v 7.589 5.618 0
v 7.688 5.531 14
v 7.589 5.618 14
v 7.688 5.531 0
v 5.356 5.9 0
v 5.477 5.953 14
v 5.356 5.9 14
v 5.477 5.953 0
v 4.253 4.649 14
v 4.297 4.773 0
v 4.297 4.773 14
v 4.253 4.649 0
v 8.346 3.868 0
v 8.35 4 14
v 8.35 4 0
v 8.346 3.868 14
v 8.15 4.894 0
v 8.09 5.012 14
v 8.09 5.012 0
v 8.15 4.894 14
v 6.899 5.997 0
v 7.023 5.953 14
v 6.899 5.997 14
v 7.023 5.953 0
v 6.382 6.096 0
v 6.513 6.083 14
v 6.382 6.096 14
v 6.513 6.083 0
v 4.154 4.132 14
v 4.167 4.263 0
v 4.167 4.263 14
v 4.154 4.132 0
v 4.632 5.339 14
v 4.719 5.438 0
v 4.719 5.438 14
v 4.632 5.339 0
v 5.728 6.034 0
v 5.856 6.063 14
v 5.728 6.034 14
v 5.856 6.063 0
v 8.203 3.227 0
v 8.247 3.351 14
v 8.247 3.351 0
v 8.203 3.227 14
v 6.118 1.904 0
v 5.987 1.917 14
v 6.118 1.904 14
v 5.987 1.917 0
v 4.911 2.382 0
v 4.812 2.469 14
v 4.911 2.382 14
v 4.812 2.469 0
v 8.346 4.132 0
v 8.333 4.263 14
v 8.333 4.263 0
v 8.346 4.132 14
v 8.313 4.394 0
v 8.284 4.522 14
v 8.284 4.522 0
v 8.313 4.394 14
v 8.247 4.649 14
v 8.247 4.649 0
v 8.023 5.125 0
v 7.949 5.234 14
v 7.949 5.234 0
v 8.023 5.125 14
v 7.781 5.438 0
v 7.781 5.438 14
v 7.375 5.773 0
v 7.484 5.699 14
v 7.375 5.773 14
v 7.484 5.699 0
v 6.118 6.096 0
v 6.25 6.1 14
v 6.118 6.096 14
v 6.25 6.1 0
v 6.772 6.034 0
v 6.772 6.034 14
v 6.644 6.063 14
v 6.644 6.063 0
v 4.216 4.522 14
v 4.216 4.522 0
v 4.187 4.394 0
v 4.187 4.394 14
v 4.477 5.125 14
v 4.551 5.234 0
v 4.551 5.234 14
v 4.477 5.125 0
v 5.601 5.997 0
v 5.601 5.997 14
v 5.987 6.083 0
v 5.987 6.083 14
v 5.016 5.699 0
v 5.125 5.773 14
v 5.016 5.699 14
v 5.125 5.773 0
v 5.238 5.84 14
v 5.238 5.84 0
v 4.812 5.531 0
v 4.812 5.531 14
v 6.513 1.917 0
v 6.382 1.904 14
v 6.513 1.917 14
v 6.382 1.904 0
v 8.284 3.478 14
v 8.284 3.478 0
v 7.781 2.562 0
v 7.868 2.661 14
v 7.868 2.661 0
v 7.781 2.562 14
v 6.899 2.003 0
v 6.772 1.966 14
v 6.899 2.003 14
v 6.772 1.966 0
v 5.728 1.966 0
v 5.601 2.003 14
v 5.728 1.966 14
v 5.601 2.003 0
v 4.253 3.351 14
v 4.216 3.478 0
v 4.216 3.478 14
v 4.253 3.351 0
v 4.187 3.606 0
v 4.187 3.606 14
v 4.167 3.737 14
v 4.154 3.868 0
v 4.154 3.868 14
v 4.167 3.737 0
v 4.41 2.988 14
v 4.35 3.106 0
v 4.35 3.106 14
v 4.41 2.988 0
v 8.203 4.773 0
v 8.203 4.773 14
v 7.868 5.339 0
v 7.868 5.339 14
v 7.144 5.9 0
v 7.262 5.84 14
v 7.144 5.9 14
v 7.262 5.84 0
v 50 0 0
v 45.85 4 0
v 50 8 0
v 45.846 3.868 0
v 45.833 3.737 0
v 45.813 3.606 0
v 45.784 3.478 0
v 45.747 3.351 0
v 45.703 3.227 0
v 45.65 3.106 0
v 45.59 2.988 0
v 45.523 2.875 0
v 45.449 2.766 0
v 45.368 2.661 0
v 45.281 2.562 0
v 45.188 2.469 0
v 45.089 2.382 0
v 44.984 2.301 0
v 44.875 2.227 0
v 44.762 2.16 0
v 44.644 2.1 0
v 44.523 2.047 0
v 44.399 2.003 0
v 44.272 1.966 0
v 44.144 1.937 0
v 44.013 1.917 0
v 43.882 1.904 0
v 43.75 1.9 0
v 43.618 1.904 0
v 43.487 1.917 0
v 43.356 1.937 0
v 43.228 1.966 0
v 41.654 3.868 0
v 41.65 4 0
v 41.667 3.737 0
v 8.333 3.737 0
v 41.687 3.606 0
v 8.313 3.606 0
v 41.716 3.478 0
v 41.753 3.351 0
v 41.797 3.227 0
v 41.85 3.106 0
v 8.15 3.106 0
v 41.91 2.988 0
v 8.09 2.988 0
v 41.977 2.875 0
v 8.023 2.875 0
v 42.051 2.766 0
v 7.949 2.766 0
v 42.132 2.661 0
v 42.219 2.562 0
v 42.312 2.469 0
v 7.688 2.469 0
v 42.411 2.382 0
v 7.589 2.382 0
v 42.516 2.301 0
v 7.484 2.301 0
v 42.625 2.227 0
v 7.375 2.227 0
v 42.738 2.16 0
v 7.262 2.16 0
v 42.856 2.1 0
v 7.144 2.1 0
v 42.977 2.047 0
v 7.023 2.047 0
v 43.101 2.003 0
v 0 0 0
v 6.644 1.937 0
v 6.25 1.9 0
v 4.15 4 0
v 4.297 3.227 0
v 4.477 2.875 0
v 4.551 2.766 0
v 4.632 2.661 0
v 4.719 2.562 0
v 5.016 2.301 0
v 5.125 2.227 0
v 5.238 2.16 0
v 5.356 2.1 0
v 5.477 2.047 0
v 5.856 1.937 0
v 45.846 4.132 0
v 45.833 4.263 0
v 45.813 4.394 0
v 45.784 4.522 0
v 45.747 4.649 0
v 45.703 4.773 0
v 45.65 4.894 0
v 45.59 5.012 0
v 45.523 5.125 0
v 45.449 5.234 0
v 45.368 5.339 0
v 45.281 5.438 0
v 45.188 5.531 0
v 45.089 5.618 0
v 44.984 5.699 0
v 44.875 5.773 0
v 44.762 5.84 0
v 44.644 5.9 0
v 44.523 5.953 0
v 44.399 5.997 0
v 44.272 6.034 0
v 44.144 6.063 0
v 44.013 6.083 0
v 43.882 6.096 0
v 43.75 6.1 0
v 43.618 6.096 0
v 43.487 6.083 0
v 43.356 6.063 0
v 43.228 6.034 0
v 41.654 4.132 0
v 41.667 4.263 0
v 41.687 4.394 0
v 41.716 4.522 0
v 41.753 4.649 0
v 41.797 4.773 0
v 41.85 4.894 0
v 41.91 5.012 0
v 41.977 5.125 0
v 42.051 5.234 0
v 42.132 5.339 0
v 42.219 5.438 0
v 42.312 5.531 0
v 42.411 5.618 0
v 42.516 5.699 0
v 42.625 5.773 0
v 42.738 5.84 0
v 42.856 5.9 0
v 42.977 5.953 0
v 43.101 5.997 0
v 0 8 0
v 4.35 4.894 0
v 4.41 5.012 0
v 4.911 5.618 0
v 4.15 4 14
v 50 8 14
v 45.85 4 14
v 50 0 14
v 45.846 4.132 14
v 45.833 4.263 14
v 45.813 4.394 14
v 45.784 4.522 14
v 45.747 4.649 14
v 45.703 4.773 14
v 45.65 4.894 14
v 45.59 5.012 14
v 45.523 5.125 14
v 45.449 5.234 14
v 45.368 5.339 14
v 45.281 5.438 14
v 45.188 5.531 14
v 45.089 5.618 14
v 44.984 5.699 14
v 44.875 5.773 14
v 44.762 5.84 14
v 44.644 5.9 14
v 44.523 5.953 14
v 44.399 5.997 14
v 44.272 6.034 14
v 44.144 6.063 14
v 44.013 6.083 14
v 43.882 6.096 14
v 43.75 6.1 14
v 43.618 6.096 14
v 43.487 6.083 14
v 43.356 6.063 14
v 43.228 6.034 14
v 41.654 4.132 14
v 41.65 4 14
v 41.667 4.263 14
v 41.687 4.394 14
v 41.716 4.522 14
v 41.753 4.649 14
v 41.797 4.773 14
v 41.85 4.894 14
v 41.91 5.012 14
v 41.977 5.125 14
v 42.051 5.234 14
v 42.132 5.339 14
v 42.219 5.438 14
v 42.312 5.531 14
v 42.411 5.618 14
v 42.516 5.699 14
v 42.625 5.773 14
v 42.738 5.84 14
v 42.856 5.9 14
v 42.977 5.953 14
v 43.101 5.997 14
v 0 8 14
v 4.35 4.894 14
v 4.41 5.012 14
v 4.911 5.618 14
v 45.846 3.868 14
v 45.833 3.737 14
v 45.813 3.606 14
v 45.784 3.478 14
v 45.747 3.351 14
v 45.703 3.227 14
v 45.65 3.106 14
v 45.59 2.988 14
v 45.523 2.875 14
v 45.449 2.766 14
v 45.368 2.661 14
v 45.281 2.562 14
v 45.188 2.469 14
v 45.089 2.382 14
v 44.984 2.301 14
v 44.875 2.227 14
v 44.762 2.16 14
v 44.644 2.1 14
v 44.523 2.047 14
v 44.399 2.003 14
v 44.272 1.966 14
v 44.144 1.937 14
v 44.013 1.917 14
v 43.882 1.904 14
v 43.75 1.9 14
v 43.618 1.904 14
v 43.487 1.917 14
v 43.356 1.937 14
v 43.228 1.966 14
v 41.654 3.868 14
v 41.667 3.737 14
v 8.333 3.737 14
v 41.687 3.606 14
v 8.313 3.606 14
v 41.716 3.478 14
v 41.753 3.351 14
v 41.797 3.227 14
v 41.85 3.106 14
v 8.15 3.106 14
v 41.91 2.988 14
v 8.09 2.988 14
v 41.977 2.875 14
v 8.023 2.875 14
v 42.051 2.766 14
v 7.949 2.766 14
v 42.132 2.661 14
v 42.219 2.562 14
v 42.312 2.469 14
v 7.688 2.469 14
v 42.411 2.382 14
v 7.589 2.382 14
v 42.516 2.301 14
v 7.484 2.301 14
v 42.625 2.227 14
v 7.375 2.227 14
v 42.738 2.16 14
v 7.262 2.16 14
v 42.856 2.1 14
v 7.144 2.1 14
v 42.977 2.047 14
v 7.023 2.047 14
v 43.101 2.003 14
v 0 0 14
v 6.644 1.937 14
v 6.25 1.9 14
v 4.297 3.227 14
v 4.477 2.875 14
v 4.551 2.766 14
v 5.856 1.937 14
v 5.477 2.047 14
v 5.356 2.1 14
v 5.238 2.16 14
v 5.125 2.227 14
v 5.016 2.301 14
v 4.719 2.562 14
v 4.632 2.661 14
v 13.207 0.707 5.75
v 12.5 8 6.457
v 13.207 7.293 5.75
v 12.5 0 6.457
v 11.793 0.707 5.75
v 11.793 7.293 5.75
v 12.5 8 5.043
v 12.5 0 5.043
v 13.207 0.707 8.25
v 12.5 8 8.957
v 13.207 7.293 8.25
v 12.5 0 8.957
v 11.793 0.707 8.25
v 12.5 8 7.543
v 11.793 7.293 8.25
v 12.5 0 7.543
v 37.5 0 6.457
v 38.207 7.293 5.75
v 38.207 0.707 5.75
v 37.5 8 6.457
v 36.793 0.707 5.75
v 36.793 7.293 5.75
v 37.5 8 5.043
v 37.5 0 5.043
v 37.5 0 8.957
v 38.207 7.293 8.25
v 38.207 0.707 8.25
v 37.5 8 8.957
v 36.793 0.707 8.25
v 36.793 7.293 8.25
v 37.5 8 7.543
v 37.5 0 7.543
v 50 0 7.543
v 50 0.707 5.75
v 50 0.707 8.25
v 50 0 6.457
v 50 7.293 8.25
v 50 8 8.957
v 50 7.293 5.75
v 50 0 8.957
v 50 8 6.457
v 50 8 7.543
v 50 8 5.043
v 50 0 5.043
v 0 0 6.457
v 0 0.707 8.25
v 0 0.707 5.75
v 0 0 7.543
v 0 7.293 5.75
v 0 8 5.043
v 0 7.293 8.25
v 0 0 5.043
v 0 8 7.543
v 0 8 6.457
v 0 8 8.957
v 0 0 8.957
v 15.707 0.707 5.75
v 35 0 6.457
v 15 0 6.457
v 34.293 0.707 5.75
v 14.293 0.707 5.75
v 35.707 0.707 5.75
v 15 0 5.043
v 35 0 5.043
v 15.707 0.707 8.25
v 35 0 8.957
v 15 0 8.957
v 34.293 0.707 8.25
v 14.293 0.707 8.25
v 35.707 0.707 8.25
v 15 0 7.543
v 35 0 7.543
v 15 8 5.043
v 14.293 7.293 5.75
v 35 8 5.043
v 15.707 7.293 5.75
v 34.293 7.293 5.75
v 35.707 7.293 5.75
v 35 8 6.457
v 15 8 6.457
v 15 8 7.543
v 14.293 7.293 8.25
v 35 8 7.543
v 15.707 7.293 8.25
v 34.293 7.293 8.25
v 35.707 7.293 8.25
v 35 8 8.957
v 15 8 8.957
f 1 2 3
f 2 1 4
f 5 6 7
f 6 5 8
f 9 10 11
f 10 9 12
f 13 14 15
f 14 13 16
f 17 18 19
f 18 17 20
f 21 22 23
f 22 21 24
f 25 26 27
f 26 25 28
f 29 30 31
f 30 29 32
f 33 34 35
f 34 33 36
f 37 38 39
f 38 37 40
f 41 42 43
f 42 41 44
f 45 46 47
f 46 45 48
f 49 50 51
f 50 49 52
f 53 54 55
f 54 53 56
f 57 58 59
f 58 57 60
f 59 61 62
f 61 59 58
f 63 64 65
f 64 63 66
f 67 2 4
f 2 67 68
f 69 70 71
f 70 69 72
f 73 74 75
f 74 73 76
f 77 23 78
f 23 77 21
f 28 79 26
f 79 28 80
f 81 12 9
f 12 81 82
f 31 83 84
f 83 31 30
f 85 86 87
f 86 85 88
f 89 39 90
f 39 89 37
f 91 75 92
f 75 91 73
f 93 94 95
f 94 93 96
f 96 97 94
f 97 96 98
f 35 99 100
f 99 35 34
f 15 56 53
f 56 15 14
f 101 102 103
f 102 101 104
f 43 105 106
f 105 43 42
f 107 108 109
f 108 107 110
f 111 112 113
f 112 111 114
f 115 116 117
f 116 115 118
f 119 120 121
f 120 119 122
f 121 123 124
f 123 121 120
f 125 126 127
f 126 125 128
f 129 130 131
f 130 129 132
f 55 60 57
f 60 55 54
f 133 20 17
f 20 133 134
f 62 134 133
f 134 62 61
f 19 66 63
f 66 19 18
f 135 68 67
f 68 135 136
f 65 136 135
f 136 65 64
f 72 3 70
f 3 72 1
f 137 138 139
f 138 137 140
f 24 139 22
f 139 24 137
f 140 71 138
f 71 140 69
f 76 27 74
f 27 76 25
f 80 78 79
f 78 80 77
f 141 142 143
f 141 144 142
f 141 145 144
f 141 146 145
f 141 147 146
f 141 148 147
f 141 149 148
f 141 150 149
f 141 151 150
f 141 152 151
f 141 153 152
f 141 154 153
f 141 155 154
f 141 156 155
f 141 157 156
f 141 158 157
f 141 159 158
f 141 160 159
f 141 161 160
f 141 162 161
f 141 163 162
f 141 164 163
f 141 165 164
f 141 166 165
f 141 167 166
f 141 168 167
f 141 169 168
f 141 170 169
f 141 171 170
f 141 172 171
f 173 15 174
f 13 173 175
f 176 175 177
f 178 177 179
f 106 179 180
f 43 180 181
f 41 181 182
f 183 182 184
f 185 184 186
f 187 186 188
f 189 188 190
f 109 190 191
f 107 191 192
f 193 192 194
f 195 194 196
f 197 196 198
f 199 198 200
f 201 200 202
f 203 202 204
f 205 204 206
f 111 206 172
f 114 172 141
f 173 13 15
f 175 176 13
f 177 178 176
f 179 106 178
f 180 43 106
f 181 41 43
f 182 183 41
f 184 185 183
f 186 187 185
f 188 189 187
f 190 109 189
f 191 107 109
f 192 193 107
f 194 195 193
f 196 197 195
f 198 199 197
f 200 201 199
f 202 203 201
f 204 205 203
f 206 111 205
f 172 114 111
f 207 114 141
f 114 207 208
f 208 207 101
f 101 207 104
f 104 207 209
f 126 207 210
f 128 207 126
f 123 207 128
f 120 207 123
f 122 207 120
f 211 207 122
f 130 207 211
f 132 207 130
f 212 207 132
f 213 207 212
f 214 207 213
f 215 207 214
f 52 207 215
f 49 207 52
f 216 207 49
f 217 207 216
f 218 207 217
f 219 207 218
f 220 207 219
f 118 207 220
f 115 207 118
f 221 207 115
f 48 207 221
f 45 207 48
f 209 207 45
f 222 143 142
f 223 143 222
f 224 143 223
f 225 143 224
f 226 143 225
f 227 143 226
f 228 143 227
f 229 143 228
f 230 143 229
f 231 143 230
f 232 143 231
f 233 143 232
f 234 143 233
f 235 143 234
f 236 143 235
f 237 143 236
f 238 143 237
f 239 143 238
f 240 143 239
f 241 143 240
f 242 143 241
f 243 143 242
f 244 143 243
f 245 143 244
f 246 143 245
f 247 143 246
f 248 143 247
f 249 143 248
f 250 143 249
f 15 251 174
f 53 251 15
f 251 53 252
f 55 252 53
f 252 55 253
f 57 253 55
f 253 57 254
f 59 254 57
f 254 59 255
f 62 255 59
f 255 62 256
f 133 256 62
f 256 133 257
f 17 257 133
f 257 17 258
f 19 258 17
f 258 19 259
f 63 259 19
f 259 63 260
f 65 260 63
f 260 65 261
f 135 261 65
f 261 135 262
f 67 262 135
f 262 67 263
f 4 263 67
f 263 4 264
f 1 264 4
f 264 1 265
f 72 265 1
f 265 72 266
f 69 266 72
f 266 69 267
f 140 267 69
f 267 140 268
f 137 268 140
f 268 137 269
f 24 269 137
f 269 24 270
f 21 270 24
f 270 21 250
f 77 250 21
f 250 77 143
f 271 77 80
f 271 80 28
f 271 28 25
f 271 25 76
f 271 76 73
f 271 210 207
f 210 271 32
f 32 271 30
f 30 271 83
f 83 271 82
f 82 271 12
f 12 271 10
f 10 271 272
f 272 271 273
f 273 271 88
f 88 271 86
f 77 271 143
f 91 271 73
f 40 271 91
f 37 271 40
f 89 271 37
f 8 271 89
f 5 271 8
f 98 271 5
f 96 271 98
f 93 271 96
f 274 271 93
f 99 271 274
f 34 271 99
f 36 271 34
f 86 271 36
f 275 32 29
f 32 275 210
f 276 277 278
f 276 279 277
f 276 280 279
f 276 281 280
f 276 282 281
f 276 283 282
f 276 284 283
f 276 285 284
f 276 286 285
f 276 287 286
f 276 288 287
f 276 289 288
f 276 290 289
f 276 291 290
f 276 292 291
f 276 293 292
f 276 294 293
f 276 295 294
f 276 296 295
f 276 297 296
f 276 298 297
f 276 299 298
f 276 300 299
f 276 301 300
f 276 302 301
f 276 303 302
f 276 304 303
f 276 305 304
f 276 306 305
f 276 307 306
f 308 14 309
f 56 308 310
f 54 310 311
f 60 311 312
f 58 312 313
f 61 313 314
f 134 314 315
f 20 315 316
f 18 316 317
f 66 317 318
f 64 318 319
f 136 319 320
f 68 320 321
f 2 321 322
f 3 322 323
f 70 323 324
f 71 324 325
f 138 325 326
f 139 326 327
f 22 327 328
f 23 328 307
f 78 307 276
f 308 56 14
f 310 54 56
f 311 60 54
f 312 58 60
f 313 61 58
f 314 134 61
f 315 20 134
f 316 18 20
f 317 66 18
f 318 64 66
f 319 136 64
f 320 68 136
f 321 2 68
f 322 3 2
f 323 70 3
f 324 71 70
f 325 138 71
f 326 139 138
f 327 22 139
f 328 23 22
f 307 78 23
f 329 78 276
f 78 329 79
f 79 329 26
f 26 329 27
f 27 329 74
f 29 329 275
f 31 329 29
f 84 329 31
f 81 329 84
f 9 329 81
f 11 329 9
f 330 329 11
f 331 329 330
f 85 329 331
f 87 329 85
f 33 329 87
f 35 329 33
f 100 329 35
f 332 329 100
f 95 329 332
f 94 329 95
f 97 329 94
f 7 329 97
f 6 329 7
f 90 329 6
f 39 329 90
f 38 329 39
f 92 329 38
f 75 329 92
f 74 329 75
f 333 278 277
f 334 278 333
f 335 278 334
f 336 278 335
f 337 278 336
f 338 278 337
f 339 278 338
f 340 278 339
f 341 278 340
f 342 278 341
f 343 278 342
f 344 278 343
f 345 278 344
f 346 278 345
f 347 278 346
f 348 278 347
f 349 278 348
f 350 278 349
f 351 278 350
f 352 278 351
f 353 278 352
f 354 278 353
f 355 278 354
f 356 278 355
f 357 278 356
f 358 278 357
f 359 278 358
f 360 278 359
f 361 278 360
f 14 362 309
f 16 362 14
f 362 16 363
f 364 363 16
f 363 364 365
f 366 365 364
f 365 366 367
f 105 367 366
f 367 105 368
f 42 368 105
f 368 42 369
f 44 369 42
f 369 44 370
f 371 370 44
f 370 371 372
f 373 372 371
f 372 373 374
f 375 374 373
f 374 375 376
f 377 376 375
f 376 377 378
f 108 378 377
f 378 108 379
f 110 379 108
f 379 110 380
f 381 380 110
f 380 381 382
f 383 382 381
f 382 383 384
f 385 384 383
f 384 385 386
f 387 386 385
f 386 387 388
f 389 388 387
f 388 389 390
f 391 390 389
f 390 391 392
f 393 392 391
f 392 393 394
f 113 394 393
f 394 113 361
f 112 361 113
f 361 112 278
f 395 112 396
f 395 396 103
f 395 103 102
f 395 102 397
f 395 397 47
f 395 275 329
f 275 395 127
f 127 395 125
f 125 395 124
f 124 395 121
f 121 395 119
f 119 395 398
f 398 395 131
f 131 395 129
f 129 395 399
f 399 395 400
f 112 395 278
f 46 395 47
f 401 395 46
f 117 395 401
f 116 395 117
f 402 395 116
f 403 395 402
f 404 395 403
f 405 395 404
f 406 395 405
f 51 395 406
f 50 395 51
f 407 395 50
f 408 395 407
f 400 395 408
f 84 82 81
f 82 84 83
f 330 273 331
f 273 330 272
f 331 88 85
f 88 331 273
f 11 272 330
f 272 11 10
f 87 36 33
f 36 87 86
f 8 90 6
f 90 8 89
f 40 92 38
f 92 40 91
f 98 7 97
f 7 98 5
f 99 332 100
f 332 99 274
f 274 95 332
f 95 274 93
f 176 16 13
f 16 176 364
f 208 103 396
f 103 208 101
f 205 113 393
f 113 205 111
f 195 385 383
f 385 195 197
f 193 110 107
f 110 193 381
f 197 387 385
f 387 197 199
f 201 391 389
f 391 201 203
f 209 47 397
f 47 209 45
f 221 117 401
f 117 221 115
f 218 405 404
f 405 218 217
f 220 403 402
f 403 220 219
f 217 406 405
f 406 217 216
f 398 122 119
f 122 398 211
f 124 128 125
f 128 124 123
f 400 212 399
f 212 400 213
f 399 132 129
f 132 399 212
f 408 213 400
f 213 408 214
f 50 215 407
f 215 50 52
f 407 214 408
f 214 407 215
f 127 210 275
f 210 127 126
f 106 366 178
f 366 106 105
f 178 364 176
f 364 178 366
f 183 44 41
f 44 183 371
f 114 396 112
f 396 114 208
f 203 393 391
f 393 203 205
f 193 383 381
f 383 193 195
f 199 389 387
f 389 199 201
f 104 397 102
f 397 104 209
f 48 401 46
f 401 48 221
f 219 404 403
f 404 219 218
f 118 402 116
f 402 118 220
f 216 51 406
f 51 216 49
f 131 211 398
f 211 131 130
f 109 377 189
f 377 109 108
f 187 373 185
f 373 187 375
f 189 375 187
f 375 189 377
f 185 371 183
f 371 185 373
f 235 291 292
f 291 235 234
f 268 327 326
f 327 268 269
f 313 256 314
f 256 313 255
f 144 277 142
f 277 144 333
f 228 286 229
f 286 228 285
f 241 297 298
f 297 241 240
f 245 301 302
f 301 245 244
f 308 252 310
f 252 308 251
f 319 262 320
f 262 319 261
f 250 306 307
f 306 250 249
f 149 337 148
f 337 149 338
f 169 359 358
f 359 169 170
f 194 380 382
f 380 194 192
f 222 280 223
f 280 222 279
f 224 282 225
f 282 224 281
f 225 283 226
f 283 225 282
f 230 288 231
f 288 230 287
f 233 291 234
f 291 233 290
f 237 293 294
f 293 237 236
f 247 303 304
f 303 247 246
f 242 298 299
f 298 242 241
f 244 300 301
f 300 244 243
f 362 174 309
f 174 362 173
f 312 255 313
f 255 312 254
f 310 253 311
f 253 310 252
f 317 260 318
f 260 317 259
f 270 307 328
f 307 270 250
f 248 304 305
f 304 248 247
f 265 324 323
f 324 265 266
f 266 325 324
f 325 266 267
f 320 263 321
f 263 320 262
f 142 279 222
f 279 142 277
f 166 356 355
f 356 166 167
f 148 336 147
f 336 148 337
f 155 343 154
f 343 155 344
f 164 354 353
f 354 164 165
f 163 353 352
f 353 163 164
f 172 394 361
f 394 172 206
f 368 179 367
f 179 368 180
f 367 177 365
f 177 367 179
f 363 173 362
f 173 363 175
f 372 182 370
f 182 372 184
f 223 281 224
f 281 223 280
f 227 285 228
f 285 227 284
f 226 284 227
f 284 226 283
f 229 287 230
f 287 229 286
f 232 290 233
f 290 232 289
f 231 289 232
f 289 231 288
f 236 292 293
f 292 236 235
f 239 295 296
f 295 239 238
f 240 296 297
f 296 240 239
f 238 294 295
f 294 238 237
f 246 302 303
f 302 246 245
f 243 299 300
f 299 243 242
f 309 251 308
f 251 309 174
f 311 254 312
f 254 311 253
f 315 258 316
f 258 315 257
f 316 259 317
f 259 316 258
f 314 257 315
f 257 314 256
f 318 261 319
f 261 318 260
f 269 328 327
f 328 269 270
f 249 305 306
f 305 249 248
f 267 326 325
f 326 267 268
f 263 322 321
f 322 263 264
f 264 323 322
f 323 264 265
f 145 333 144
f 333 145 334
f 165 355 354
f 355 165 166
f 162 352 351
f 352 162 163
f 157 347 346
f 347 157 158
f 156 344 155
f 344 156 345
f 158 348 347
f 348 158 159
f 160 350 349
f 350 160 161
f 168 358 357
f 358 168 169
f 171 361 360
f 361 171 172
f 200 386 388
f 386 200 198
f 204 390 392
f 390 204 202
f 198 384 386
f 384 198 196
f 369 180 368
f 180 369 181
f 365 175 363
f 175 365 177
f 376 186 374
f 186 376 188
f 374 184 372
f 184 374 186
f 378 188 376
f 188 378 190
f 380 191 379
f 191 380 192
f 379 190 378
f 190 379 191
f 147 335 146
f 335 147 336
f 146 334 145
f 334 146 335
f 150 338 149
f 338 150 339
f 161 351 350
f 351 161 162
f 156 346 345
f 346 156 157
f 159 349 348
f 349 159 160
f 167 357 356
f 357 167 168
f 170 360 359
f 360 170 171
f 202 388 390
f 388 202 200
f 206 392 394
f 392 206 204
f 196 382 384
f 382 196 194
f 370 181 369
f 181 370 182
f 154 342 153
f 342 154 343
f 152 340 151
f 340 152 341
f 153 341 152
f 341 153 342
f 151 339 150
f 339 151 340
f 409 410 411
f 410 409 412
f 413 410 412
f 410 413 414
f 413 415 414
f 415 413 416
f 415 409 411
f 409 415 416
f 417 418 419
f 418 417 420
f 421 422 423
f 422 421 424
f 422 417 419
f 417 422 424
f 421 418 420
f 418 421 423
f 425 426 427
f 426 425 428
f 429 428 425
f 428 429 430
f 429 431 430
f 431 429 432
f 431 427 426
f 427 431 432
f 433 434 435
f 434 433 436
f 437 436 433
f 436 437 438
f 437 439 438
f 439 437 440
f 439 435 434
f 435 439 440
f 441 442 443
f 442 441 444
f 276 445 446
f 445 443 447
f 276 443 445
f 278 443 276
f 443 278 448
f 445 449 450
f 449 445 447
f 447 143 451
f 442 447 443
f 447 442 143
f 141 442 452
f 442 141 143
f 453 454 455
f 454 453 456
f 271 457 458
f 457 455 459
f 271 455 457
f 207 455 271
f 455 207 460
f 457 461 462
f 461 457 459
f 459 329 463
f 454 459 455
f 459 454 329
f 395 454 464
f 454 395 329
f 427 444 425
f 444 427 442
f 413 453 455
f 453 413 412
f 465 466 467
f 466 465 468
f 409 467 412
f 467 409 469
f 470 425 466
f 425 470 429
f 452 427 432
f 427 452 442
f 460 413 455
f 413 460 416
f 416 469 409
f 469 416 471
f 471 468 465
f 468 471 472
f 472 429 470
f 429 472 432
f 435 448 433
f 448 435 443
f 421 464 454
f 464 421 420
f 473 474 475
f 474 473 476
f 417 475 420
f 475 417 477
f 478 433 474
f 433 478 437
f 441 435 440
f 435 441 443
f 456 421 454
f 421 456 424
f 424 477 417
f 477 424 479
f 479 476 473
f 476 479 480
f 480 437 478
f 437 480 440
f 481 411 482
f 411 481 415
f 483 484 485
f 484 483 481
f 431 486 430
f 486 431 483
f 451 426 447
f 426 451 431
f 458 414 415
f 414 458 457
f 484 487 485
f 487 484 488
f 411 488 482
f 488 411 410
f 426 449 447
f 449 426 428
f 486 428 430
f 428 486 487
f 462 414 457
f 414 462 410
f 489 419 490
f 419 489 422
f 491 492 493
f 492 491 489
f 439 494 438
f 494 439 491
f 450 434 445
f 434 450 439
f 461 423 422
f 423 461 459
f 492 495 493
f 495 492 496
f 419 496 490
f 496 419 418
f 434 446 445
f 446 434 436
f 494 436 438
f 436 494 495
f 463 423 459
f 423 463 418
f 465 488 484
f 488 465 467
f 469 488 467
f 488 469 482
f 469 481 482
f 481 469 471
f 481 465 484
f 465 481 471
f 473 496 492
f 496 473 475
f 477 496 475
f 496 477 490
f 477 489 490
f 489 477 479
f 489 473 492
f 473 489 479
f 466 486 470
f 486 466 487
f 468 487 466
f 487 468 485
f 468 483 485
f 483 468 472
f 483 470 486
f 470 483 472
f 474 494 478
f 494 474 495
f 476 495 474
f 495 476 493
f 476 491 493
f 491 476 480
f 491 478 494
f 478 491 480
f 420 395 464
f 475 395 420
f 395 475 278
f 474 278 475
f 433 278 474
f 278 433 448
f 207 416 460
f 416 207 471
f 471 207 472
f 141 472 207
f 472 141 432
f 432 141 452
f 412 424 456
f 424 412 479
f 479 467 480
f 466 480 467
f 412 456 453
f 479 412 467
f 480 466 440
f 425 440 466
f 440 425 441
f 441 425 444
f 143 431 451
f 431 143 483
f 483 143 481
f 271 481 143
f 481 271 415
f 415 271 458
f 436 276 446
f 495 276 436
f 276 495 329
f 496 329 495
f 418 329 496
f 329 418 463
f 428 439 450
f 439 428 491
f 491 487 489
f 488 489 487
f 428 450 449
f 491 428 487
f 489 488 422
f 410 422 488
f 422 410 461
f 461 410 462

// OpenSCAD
/*
   Harpe anti-frelons asiatiques
   Isolateur à réaliser en PETG (durabilité aux UVs)
   
   Ces pièces permettent par juxtaposition d'obtenir une barre transversale isolante
   permettant le passage de fil inox diam. 0.5.
   Le pas entre fils voisins est de 25 mm (paramètre p ajustable à volonté).
   
   Les trous de passage sont à 12.5 mm (p/2) du bord de la pièce, ce qui permet
   d'obtenir un pas de 25 mm quand on juxtapose 2 pièces.
   
   Deux trous de vis de fixation permettent de visser ces pièces dans deux barres
   transversales servant de joues de support à l'ensemble des pièces.
*/
$fn=100;

He=14;  // Hauteur isolateur
Di=4.2; // Diamètre perçage de fixation, pour vis de 4x40
dt=1;   // Diamètre trou de passage fil inox
p=25;   // Pas des fils
e=8;    // Epaisseur pièce de fixation fils
a=2.5;  // Espacement des deux plans de fils
b=2.5;  // Espacement trous pour arrêt aux extrémités

h1=(He-a)/2; // hauteur premier plan de fils
h2=He-h1;    // hauteur 2e plan de fils
h3=h1/2;     // trous pour fixation fils plan du bas
h4=He-h3;    // trous pour fixation fils plan du haut

difference () {
  cube([2*p,e,He]);
  union() {
    // Trous de fixation
    translate([p/4,e/2,0])  cylinder(d=Di,h=He);
    translate([2*p-p/4,e/2,0])  cylinder(d=Di,h=He);
      
    // Trous pour passage fils
    //translate([p/2,0,He/3])  rotate([-90,0,0])  cylinder(d=dt,h=e);
    //translate([p/2,0,2*He/3])  rotate([-90,0,0])  cylinder(d=dt,h=e);
    //translate([2*p-p/2,0,He/3])  rotate([-90,0,0])  cylinder(d=dt,h=e);
    //translate([2*p-p/2,0,2*He/3])  rotate([-90,0,0])  cylinder(d=dt,h=e);
    translate([p/2,0,h1])  rotate([45,0,90])  translate([0,-dt/2,-dt/2])  cube([e,dt,dt]);
    translate([p/2,0,h2])  rotate([45,0,90])  translate([0,-dt/2,-dt/2])  cube([e,dt,dt]);
    translate([2*p-p/2,0,h1])  rotate([45,0,90])  translate([0,-dt/2,-dt/2])  cube([e,dt,dt]);
    translate([2*p-p/2,0,h2])  rotate([45,0,90])  translate([0,-dt/2,-dt/2])  cube([e,dt,dt]);;
    translate([0,0,h1])  rotate([45,0,0])  translate([0,-dt/2,-dt/2])  cube([2*p,dt,dt]);
    translate([0,0,h2])  rotate([45,0,0])  translate([0,-dt/2,-dt/2])  cube([2*p,dt,dt]);
    translate([0,e,h1])  rotate([45,0,0])  translate([0,-dt/2,-dt/2])  cube([2*p,dt,dt]);
    translate([0,e,h2])  rotate([45,0,0])  translate([0,-dt/2,-dt/2])  cube([2*p,dt,dt]);

    // trous fixation fils (pour extrémités)
    translate([p/2+b,0,h1])  rotate([45,0,90])  translate([0,-dt/2,-dt/2])  cube([e,dt,dt]);
    translate([p/2+b,0,h2])  rotate([45,0,90])  translate([0,-dt/2,-dt/2])  cube([e,dt,dt]);
    translate([2*p-p/2-b,0,h1])  rotate([45,0,90])  translate([0,-dt/2,-dt/2])  cube([e,dt,dt]);
    translate([2*p-p/2-b,0,h2])  rotate([45,0,90])  translate([0,-dt/2,-dt/2])  cube([e,dt,dt]);;
  }
}

//translate([0,0,He/3])  rotate([0,90,0])  cylinder(d=dt,h=2*p);
//translate([0,0,2*He/3])  rotate([0,90,0])  cylinder(d=dt,h=2*p);
